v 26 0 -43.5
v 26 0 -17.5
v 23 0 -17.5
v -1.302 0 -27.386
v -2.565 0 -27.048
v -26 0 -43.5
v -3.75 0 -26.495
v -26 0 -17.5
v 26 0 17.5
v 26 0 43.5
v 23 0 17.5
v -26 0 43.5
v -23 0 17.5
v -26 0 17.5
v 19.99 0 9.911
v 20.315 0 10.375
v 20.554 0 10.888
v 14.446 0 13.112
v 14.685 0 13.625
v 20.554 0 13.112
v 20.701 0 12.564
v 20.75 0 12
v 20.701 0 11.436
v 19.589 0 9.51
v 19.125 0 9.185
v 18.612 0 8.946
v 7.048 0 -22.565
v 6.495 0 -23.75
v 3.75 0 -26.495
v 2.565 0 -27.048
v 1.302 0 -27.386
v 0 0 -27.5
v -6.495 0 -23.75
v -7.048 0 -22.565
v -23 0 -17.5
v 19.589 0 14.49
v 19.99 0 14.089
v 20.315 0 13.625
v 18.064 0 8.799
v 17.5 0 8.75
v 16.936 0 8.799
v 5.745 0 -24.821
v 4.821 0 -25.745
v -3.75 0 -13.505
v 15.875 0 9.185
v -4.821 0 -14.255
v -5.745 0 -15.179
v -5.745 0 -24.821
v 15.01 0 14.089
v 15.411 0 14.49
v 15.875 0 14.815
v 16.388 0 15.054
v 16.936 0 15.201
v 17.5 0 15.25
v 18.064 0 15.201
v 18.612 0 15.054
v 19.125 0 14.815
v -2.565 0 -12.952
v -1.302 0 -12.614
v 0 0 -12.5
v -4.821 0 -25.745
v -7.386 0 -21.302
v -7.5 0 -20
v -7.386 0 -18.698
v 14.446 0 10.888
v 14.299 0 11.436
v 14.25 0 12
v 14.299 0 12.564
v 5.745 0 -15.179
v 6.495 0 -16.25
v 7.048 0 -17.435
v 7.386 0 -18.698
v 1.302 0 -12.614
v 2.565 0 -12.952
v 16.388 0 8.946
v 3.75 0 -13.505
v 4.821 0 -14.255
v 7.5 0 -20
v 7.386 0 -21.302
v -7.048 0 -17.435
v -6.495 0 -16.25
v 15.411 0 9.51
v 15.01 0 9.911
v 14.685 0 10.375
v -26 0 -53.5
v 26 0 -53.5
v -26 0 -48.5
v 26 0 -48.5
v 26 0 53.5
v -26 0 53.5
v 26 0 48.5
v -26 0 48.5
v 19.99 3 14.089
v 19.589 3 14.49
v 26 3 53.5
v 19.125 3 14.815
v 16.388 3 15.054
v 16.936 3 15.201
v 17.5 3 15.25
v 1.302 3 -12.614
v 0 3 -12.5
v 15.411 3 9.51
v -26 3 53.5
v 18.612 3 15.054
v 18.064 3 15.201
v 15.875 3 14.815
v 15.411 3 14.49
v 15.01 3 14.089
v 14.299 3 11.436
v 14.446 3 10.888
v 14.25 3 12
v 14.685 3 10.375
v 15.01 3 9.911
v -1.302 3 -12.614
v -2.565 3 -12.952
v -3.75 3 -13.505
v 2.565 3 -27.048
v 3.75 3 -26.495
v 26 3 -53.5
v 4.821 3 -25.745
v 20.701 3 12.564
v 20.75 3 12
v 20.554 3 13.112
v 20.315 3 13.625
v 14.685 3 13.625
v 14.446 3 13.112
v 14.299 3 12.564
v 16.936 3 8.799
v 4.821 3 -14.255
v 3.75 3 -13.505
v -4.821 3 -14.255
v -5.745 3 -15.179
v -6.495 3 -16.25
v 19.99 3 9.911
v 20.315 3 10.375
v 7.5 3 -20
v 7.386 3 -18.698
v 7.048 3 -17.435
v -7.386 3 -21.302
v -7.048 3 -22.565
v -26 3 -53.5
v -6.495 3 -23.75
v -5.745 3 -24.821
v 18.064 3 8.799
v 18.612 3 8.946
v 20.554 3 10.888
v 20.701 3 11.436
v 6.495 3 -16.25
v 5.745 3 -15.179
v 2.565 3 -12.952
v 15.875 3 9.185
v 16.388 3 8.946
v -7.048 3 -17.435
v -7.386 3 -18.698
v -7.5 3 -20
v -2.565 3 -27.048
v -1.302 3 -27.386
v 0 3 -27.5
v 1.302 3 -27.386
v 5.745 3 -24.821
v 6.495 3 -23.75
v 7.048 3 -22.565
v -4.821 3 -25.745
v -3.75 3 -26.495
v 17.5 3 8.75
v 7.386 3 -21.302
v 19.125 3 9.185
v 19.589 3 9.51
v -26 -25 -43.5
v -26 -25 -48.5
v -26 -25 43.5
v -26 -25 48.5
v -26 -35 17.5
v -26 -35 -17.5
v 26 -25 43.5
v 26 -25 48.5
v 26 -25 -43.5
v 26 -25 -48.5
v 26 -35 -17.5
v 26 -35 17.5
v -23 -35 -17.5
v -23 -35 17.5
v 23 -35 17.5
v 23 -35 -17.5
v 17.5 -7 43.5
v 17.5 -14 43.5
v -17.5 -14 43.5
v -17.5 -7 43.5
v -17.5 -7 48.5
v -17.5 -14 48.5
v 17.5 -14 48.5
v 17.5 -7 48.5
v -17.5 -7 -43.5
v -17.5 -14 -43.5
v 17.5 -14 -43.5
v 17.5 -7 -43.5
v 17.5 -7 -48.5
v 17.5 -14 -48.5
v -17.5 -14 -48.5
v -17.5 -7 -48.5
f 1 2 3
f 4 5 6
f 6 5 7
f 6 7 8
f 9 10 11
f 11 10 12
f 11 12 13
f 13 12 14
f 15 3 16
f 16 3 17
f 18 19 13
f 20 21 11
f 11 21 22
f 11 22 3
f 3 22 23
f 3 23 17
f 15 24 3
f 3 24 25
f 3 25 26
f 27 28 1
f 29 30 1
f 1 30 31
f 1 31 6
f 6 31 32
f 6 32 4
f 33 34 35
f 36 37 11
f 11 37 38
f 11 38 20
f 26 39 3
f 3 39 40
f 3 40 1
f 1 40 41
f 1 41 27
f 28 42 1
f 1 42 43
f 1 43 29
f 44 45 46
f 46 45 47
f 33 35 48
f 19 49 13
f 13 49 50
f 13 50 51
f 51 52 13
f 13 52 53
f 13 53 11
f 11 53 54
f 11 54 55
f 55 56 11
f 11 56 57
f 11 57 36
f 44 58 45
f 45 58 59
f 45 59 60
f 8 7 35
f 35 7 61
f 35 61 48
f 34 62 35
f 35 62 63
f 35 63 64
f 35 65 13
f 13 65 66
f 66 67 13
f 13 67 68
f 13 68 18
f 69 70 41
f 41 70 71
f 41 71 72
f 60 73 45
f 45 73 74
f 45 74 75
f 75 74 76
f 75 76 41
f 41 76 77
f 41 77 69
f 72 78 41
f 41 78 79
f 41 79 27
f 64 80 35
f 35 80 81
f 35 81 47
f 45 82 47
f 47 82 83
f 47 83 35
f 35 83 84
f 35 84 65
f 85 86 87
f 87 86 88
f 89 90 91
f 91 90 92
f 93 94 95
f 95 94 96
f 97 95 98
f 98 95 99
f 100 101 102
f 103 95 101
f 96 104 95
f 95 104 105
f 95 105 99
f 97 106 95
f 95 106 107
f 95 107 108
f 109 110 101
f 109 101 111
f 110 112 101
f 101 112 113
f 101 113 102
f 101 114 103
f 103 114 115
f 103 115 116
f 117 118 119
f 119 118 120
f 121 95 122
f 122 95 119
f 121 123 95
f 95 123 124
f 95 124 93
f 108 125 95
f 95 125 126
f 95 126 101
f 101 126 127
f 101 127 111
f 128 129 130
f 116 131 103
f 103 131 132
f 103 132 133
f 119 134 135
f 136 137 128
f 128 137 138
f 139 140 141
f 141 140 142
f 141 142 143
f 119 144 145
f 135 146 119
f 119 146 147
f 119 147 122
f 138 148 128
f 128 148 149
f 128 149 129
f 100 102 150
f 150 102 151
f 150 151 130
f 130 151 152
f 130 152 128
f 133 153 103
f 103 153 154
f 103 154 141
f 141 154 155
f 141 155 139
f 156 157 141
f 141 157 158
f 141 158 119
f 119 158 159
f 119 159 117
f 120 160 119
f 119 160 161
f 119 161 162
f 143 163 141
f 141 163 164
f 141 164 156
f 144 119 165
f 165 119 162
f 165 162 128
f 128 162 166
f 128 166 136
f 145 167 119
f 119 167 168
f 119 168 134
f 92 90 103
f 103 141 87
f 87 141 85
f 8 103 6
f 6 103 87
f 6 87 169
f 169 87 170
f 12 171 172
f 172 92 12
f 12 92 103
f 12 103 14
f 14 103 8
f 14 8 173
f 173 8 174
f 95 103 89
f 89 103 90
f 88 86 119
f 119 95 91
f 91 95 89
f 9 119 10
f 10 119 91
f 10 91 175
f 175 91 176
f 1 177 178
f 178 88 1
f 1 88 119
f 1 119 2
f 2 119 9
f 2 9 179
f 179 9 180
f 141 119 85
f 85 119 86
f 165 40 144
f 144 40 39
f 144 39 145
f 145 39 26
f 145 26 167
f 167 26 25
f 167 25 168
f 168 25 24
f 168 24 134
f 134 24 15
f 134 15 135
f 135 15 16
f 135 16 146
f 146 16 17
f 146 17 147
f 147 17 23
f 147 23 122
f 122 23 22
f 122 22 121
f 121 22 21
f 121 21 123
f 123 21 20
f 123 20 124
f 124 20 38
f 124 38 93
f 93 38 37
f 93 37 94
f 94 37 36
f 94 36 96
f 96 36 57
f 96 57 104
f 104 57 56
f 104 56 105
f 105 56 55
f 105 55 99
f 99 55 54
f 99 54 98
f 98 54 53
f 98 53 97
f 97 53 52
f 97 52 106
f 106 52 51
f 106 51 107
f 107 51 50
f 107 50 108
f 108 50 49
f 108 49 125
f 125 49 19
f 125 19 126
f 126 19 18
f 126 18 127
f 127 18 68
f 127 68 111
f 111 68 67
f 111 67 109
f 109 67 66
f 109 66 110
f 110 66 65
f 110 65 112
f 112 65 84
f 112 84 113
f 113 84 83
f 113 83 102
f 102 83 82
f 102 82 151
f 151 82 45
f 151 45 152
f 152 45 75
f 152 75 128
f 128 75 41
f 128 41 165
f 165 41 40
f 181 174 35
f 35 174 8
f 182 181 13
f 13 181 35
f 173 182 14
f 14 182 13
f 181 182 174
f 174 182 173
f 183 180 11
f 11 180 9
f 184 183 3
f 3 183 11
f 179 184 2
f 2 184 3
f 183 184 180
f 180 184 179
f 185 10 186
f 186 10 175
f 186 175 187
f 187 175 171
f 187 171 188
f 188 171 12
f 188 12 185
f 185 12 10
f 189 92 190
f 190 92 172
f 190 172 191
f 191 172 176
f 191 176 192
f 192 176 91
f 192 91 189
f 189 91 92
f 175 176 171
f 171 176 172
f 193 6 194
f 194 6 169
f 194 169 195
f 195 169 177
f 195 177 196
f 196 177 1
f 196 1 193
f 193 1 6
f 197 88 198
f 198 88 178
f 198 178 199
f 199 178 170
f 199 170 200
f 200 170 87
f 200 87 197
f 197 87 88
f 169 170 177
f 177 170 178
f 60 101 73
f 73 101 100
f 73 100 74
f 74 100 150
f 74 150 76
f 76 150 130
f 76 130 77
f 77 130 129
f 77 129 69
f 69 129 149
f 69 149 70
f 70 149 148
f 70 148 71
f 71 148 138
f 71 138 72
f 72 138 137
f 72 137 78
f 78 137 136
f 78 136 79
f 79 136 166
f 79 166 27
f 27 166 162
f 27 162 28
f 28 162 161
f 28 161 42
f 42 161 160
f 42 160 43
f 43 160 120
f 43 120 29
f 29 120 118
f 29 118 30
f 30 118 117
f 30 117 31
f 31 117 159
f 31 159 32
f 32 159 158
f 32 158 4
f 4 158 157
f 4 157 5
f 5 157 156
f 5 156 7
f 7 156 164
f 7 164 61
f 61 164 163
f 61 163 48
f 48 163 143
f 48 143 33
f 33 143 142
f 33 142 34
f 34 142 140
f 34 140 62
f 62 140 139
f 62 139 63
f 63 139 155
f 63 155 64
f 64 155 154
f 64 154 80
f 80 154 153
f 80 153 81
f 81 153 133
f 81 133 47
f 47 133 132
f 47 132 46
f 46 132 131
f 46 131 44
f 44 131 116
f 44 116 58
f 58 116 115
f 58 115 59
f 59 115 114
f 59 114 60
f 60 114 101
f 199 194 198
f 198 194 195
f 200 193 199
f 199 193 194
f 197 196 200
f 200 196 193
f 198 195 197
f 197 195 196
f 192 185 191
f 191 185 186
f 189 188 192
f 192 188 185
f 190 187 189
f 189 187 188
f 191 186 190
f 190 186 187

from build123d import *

# Parameters (mm, degrees)
SKETCH1_W               = 52
SKETCH1_H               = 107
SKETCH1_R               = 3.25
BOSS_EXTRUDE1_DEPTH     = 3
SKETCH2_W               = 3
SKETCH2_H               = 35
BOSS_EXTRUDE2_DEPTH     = 35
SKETCH3_W               = 52
SKETCH3_H               = 5
BOSS_EXTRUDE3_DEPTH     = 25
SKETCH4_R               = 7.5
CUT_EXTRUDE1_DEPTH      = 71.585055075
CUT_EXTRUDE2_DEPTH      = 111.927904515
CUT_EXTRUDE2_DEPTH_BACK = 111.927904515
SKETCH5_W               = 35
SKETCH5_H               = 7


with BuildPart() as part:
    # Sketch1 → Boss-Extrude1 (new body)
    with BuildSketch(Plane(origin=(0, 0, 0), x_dir=(1, 0, 0), z_dir=(0, 1, 0))):
        Rectangle(SKETCH1_W, SKETCH1_H)
        with Locations(Location((17.5, -12, 0), (0, 0, 270))):
            Circle(SKETCH1_R, mode=Mode.SUBTRACT)
    extrude(amount=BOSS_EXTRUDE1_DEPTH)

    # Sketch2 → Boss-Extrude2 (add)
    with BuildSketch(Plane.XZ):
        with Locations((-24.5, 0)):
            Rectangle(SKETCH2_W, SKETCH2_H)
        with Locations((24.5, 0)):
            Rectangle(SKETCH2_W, SKETCH2_H)
    extrude(amount=BOSS_EXTRUDE2_DEPTH)

    # Sketch3 → Boss-Extrude3 (add)
    with BuildSketch(Plane.XZ):
        with Locations((0, 46)):
            Rectangle(SKETCH3_W, SKETCH3_H)
        with Locations((0, -46)):
            Rectangle(SKETCH3_W, SKETCH3_H)
    extrude(amount=BOSS_EXTRUDE3_DEPTH)

    # Sketch4 → Cut-Extrude1 (cut, through all)
    with BuildSketch(Plane(origin=(0, 3, 0), x_dir=(1, 0, 0), z_dir=(0, 1, 0))):
        with Locations(Location((0, 20, 0), (0, 0, 270))):
            Circle(SKETCH4_R)
    extrude(amount=-CUT_EXTRUDE1_DEPTH, mode=Mode.SUBTRACT)

    # Sketch5 → Cut-Extrude2 (cut, two sides: drawn at the far end of the back side and taken through both)
    with BuildSketch(Plane(origin=(0, 0, -48.5), x_dir=(-1, 0, 0), z_dir=(0, 0, -1)).offset(-CUT_EXTRUDE2_DEPTH_BACK)):
        with Locations((0, -10.5)):
            Rectangle(SKETCH5_W, SKETCH5_H)
    extrude(amount=CUT_EXTRUDE2_DEPTH + CUT_EXTRUDE2_DEPTH_BACK, mode=Mode.SUBTRACT)


solid = part.part
